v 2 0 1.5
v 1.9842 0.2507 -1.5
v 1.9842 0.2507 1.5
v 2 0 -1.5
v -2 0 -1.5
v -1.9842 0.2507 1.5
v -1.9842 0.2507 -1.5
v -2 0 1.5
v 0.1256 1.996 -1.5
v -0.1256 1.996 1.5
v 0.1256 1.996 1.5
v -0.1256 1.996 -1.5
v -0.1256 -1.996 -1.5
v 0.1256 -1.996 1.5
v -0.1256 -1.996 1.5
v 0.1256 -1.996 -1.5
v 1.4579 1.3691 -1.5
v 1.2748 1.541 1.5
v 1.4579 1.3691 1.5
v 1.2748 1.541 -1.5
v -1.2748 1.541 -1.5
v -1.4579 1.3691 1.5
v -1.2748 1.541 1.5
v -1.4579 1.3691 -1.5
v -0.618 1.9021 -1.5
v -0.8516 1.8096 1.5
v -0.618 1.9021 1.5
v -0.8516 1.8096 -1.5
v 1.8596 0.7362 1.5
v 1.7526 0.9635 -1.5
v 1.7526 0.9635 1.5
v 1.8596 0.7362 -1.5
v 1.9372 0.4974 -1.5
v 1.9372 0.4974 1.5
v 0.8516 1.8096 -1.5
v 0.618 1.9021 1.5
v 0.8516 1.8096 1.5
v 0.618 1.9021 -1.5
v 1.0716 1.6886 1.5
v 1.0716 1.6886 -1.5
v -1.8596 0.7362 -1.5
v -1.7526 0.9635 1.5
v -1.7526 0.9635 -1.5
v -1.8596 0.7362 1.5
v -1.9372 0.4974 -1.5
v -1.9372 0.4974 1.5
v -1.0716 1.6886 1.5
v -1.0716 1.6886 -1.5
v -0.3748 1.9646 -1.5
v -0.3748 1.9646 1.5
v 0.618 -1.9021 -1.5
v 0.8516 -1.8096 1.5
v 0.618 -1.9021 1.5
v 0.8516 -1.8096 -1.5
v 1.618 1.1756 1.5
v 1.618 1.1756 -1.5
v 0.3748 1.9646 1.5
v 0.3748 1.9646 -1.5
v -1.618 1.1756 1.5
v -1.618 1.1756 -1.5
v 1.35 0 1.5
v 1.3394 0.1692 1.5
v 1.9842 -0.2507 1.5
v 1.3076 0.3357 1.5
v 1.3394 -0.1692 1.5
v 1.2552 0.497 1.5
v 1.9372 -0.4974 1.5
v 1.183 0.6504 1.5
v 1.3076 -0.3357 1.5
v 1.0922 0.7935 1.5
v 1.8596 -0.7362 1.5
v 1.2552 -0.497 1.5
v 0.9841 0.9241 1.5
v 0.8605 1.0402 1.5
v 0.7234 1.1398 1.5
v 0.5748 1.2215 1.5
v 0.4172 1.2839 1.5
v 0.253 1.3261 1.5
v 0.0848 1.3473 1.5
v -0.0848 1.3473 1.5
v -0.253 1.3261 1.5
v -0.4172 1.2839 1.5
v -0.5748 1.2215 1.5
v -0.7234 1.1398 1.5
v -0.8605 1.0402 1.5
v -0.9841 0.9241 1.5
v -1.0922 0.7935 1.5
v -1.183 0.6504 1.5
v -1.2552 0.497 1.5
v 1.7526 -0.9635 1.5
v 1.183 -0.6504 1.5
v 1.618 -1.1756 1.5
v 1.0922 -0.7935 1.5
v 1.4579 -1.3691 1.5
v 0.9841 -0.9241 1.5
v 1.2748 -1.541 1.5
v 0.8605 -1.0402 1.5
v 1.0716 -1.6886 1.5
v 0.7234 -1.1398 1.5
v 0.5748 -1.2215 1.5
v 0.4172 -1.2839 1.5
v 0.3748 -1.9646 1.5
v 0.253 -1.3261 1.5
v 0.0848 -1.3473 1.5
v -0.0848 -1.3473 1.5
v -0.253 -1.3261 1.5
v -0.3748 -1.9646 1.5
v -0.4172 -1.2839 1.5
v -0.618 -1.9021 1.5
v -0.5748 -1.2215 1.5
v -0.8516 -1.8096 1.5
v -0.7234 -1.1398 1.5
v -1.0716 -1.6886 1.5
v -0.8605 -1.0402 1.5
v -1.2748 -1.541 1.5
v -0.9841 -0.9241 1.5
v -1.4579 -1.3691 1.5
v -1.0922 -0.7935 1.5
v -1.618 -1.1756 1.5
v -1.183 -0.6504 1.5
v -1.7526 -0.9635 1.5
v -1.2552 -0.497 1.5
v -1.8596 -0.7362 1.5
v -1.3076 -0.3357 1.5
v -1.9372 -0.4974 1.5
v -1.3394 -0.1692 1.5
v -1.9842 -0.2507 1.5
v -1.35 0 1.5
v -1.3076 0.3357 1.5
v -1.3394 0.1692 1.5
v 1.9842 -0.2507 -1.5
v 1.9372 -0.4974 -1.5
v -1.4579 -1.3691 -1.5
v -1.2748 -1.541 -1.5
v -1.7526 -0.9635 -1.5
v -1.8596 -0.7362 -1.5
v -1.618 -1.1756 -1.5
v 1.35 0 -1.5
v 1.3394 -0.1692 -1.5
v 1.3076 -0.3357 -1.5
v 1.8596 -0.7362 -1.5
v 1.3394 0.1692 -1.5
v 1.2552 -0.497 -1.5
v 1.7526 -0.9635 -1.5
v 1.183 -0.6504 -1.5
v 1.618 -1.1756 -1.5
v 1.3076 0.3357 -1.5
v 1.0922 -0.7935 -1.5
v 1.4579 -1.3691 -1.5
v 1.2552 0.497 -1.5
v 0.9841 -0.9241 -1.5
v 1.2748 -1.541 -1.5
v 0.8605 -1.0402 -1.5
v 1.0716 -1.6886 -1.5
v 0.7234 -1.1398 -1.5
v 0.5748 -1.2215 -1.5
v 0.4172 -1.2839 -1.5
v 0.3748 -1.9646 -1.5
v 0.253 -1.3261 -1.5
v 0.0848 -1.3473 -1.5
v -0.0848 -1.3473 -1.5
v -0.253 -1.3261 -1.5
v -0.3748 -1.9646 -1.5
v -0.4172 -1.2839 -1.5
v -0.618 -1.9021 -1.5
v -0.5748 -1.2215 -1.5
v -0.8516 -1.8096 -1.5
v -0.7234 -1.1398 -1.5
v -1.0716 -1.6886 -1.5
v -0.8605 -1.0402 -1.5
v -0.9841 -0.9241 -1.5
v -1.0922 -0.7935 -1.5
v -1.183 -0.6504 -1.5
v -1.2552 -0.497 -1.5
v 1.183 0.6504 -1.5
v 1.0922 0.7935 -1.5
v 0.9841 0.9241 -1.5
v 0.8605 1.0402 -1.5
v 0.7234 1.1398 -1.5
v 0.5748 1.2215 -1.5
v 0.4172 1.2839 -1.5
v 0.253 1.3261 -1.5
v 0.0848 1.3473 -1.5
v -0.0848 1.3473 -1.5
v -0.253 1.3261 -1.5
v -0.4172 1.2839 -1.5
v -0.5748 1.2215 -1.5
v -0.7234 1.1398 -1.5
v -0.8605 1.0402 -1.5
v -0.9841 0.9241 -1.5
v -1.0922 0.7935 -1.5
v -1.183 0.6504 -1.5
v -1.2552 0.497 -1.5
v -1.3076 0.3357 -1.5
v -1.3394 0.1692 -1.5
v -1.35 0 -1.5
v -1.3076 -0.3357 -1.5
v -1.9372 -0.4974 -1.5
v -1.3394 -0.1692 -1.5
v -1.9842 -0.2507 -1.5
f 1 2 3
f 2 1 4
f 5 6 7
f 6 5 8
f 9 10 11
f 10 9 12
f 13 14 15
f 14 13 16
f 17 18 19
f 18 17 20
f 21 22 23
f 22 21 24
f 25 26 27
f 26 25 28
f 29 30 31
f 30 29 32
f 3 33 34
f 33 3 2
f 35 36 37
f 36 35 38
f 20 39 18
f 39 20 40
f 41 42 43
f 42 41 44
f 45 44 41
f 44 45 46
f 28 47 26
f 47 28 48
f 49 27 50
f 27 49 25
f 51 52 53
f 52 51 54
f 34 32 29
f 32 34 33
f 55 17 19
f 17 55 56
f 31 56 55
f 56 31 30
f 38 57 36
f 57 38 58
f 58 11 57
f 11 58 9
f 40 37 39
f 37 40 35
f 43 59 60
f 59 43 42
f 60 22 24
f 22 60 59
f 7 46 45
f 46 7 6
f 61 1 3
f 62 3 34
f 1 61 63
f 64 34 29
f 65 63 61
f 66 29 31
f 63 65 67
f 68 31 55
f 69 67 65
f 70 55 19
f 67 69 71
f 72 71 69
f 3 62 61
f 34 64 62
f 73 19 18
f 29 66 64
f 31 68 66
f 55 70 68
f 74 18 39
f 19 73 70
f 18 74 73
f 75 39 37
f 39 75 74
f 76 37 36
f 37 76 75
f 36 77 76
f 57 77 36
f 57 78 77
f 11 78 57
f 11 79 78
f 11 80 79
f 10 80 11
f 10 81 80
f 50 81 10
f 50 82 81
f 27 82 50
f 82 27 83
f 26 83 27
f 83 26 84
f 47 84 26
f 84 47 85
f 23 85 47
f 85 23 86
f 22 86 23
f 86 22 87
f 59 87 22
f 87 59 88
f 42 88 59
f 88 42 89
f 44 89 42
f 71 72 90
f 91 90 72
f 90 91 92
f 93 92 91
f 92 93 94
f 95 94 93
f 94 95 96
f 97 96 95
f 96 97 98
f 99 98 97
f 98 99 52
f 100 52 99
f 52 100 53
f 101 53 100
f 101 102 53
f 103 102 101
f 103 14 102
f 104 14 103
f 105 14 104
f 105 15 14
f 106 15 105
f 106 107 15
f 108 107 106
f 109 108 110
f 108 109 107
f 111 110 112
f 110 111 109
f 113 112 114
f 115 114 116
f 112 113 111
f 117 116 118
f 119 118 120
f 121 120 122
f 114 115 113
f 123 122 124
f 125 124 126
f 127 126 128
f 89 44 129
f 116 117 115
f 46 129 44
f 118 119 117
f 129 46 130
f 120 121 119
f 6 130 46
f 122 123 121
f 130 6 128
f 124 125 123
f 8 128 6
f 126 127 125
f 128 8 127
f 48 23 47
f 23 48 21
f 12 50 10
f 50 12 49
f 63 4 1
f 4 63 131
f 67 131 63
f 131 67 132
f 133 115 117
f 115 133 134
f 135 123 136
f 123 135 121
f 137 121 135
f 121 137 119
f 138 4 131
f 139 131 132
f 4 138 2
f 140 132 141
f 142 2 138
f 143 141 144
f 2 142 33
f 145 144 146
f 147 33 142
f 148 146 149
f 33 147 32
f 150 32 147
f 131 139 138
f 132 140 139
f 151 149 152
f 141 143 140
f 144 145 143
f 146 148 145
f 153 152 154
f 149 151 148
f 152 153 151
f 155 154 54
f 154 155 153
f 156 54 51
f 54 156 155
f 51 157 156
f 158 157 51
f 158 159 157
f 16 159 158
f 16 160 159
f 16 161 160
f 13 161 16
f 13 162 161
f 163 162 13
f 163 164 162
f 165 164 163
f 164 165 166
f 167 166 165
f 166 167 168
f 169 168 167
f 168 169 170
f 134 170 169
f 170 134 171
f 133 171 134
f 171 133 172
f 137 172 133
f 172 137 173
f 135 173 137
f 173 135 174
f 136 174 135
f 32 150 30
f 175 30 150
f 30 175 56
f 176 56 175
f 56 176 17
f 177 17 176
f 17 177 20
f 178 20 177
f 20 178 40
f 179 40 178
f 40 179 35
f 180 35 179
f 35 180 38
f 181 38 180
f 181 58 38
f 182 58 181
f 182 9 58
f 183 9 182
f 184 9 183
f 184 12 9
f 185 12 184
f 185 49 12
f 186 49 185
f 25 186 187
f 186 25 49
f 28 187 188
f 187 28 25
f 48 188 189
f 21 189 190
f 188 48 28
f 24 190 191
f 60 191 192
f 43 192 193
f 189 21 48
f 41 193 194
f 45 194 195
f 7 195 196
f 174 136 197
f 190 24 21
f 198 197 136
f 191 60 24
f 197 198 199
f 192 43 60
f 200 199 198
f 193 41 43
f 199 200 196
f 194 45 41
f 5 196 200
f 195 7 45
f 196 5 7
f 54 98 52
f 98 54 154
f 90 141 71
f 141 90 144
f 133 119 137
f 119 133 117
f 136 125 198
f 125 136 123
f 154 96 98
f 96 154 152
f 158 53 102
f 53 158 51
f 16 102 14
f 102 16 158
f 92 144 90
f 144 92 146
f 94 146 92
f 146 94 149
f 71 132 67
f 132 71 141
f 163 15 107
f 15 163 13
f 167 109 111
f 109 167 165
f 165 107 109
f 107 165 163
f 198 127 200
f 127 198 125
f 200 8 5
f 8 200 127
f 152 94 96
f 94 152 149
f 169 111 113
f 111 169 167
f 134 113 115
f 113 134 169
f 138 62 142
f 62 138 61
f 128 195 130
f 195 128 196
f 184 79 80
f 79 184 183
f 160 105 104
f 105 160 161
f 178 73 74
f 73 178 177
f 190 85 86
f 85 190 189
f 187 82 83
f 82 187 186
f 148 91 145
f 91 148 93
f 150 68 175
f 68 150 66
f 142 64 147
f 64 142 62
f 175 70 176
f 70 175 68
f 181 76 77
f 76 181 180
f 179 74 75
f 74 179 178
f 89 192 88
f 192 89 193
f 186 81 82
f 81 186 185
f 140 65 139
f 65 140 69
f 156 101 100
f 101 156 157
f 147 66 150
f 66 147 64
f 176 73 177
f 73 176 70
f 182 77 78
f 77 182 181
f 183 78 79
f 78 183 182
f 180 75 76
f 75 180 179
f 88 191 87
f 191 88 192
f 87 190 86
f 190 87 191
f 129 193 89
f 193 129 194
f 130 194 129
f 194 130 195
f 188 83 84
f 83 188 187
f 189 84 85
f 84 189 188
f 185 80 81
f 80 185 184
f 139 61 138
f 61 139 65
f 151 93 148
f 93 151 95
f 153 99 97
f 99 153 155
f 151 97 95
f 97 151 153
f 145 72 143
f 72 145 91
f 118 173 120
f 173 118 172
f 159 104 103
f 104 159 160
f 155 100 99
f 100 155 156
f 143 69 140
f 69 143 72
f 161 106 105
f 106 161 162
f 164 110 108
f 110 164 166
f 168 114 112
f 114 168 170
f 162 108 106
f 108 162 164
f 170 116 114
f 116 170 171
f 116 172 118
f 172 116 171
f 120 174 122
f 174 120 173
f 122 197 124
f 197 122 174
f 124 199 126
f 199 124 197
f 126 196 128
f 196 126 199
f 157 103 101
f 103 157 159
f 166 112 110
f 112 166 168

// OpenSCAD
$fn = 50;


difference() {
	union() {
		translate(v = [0, 0, -1.5000000000]) {
			cylinder(h = 3, r = 2.0000000000);
		}
	}
	union() {
		translate(v = [0, 0, -100.0000000000]) {
			cylinder(h = 200, r = 1.3500000000);
		}
	}
}
